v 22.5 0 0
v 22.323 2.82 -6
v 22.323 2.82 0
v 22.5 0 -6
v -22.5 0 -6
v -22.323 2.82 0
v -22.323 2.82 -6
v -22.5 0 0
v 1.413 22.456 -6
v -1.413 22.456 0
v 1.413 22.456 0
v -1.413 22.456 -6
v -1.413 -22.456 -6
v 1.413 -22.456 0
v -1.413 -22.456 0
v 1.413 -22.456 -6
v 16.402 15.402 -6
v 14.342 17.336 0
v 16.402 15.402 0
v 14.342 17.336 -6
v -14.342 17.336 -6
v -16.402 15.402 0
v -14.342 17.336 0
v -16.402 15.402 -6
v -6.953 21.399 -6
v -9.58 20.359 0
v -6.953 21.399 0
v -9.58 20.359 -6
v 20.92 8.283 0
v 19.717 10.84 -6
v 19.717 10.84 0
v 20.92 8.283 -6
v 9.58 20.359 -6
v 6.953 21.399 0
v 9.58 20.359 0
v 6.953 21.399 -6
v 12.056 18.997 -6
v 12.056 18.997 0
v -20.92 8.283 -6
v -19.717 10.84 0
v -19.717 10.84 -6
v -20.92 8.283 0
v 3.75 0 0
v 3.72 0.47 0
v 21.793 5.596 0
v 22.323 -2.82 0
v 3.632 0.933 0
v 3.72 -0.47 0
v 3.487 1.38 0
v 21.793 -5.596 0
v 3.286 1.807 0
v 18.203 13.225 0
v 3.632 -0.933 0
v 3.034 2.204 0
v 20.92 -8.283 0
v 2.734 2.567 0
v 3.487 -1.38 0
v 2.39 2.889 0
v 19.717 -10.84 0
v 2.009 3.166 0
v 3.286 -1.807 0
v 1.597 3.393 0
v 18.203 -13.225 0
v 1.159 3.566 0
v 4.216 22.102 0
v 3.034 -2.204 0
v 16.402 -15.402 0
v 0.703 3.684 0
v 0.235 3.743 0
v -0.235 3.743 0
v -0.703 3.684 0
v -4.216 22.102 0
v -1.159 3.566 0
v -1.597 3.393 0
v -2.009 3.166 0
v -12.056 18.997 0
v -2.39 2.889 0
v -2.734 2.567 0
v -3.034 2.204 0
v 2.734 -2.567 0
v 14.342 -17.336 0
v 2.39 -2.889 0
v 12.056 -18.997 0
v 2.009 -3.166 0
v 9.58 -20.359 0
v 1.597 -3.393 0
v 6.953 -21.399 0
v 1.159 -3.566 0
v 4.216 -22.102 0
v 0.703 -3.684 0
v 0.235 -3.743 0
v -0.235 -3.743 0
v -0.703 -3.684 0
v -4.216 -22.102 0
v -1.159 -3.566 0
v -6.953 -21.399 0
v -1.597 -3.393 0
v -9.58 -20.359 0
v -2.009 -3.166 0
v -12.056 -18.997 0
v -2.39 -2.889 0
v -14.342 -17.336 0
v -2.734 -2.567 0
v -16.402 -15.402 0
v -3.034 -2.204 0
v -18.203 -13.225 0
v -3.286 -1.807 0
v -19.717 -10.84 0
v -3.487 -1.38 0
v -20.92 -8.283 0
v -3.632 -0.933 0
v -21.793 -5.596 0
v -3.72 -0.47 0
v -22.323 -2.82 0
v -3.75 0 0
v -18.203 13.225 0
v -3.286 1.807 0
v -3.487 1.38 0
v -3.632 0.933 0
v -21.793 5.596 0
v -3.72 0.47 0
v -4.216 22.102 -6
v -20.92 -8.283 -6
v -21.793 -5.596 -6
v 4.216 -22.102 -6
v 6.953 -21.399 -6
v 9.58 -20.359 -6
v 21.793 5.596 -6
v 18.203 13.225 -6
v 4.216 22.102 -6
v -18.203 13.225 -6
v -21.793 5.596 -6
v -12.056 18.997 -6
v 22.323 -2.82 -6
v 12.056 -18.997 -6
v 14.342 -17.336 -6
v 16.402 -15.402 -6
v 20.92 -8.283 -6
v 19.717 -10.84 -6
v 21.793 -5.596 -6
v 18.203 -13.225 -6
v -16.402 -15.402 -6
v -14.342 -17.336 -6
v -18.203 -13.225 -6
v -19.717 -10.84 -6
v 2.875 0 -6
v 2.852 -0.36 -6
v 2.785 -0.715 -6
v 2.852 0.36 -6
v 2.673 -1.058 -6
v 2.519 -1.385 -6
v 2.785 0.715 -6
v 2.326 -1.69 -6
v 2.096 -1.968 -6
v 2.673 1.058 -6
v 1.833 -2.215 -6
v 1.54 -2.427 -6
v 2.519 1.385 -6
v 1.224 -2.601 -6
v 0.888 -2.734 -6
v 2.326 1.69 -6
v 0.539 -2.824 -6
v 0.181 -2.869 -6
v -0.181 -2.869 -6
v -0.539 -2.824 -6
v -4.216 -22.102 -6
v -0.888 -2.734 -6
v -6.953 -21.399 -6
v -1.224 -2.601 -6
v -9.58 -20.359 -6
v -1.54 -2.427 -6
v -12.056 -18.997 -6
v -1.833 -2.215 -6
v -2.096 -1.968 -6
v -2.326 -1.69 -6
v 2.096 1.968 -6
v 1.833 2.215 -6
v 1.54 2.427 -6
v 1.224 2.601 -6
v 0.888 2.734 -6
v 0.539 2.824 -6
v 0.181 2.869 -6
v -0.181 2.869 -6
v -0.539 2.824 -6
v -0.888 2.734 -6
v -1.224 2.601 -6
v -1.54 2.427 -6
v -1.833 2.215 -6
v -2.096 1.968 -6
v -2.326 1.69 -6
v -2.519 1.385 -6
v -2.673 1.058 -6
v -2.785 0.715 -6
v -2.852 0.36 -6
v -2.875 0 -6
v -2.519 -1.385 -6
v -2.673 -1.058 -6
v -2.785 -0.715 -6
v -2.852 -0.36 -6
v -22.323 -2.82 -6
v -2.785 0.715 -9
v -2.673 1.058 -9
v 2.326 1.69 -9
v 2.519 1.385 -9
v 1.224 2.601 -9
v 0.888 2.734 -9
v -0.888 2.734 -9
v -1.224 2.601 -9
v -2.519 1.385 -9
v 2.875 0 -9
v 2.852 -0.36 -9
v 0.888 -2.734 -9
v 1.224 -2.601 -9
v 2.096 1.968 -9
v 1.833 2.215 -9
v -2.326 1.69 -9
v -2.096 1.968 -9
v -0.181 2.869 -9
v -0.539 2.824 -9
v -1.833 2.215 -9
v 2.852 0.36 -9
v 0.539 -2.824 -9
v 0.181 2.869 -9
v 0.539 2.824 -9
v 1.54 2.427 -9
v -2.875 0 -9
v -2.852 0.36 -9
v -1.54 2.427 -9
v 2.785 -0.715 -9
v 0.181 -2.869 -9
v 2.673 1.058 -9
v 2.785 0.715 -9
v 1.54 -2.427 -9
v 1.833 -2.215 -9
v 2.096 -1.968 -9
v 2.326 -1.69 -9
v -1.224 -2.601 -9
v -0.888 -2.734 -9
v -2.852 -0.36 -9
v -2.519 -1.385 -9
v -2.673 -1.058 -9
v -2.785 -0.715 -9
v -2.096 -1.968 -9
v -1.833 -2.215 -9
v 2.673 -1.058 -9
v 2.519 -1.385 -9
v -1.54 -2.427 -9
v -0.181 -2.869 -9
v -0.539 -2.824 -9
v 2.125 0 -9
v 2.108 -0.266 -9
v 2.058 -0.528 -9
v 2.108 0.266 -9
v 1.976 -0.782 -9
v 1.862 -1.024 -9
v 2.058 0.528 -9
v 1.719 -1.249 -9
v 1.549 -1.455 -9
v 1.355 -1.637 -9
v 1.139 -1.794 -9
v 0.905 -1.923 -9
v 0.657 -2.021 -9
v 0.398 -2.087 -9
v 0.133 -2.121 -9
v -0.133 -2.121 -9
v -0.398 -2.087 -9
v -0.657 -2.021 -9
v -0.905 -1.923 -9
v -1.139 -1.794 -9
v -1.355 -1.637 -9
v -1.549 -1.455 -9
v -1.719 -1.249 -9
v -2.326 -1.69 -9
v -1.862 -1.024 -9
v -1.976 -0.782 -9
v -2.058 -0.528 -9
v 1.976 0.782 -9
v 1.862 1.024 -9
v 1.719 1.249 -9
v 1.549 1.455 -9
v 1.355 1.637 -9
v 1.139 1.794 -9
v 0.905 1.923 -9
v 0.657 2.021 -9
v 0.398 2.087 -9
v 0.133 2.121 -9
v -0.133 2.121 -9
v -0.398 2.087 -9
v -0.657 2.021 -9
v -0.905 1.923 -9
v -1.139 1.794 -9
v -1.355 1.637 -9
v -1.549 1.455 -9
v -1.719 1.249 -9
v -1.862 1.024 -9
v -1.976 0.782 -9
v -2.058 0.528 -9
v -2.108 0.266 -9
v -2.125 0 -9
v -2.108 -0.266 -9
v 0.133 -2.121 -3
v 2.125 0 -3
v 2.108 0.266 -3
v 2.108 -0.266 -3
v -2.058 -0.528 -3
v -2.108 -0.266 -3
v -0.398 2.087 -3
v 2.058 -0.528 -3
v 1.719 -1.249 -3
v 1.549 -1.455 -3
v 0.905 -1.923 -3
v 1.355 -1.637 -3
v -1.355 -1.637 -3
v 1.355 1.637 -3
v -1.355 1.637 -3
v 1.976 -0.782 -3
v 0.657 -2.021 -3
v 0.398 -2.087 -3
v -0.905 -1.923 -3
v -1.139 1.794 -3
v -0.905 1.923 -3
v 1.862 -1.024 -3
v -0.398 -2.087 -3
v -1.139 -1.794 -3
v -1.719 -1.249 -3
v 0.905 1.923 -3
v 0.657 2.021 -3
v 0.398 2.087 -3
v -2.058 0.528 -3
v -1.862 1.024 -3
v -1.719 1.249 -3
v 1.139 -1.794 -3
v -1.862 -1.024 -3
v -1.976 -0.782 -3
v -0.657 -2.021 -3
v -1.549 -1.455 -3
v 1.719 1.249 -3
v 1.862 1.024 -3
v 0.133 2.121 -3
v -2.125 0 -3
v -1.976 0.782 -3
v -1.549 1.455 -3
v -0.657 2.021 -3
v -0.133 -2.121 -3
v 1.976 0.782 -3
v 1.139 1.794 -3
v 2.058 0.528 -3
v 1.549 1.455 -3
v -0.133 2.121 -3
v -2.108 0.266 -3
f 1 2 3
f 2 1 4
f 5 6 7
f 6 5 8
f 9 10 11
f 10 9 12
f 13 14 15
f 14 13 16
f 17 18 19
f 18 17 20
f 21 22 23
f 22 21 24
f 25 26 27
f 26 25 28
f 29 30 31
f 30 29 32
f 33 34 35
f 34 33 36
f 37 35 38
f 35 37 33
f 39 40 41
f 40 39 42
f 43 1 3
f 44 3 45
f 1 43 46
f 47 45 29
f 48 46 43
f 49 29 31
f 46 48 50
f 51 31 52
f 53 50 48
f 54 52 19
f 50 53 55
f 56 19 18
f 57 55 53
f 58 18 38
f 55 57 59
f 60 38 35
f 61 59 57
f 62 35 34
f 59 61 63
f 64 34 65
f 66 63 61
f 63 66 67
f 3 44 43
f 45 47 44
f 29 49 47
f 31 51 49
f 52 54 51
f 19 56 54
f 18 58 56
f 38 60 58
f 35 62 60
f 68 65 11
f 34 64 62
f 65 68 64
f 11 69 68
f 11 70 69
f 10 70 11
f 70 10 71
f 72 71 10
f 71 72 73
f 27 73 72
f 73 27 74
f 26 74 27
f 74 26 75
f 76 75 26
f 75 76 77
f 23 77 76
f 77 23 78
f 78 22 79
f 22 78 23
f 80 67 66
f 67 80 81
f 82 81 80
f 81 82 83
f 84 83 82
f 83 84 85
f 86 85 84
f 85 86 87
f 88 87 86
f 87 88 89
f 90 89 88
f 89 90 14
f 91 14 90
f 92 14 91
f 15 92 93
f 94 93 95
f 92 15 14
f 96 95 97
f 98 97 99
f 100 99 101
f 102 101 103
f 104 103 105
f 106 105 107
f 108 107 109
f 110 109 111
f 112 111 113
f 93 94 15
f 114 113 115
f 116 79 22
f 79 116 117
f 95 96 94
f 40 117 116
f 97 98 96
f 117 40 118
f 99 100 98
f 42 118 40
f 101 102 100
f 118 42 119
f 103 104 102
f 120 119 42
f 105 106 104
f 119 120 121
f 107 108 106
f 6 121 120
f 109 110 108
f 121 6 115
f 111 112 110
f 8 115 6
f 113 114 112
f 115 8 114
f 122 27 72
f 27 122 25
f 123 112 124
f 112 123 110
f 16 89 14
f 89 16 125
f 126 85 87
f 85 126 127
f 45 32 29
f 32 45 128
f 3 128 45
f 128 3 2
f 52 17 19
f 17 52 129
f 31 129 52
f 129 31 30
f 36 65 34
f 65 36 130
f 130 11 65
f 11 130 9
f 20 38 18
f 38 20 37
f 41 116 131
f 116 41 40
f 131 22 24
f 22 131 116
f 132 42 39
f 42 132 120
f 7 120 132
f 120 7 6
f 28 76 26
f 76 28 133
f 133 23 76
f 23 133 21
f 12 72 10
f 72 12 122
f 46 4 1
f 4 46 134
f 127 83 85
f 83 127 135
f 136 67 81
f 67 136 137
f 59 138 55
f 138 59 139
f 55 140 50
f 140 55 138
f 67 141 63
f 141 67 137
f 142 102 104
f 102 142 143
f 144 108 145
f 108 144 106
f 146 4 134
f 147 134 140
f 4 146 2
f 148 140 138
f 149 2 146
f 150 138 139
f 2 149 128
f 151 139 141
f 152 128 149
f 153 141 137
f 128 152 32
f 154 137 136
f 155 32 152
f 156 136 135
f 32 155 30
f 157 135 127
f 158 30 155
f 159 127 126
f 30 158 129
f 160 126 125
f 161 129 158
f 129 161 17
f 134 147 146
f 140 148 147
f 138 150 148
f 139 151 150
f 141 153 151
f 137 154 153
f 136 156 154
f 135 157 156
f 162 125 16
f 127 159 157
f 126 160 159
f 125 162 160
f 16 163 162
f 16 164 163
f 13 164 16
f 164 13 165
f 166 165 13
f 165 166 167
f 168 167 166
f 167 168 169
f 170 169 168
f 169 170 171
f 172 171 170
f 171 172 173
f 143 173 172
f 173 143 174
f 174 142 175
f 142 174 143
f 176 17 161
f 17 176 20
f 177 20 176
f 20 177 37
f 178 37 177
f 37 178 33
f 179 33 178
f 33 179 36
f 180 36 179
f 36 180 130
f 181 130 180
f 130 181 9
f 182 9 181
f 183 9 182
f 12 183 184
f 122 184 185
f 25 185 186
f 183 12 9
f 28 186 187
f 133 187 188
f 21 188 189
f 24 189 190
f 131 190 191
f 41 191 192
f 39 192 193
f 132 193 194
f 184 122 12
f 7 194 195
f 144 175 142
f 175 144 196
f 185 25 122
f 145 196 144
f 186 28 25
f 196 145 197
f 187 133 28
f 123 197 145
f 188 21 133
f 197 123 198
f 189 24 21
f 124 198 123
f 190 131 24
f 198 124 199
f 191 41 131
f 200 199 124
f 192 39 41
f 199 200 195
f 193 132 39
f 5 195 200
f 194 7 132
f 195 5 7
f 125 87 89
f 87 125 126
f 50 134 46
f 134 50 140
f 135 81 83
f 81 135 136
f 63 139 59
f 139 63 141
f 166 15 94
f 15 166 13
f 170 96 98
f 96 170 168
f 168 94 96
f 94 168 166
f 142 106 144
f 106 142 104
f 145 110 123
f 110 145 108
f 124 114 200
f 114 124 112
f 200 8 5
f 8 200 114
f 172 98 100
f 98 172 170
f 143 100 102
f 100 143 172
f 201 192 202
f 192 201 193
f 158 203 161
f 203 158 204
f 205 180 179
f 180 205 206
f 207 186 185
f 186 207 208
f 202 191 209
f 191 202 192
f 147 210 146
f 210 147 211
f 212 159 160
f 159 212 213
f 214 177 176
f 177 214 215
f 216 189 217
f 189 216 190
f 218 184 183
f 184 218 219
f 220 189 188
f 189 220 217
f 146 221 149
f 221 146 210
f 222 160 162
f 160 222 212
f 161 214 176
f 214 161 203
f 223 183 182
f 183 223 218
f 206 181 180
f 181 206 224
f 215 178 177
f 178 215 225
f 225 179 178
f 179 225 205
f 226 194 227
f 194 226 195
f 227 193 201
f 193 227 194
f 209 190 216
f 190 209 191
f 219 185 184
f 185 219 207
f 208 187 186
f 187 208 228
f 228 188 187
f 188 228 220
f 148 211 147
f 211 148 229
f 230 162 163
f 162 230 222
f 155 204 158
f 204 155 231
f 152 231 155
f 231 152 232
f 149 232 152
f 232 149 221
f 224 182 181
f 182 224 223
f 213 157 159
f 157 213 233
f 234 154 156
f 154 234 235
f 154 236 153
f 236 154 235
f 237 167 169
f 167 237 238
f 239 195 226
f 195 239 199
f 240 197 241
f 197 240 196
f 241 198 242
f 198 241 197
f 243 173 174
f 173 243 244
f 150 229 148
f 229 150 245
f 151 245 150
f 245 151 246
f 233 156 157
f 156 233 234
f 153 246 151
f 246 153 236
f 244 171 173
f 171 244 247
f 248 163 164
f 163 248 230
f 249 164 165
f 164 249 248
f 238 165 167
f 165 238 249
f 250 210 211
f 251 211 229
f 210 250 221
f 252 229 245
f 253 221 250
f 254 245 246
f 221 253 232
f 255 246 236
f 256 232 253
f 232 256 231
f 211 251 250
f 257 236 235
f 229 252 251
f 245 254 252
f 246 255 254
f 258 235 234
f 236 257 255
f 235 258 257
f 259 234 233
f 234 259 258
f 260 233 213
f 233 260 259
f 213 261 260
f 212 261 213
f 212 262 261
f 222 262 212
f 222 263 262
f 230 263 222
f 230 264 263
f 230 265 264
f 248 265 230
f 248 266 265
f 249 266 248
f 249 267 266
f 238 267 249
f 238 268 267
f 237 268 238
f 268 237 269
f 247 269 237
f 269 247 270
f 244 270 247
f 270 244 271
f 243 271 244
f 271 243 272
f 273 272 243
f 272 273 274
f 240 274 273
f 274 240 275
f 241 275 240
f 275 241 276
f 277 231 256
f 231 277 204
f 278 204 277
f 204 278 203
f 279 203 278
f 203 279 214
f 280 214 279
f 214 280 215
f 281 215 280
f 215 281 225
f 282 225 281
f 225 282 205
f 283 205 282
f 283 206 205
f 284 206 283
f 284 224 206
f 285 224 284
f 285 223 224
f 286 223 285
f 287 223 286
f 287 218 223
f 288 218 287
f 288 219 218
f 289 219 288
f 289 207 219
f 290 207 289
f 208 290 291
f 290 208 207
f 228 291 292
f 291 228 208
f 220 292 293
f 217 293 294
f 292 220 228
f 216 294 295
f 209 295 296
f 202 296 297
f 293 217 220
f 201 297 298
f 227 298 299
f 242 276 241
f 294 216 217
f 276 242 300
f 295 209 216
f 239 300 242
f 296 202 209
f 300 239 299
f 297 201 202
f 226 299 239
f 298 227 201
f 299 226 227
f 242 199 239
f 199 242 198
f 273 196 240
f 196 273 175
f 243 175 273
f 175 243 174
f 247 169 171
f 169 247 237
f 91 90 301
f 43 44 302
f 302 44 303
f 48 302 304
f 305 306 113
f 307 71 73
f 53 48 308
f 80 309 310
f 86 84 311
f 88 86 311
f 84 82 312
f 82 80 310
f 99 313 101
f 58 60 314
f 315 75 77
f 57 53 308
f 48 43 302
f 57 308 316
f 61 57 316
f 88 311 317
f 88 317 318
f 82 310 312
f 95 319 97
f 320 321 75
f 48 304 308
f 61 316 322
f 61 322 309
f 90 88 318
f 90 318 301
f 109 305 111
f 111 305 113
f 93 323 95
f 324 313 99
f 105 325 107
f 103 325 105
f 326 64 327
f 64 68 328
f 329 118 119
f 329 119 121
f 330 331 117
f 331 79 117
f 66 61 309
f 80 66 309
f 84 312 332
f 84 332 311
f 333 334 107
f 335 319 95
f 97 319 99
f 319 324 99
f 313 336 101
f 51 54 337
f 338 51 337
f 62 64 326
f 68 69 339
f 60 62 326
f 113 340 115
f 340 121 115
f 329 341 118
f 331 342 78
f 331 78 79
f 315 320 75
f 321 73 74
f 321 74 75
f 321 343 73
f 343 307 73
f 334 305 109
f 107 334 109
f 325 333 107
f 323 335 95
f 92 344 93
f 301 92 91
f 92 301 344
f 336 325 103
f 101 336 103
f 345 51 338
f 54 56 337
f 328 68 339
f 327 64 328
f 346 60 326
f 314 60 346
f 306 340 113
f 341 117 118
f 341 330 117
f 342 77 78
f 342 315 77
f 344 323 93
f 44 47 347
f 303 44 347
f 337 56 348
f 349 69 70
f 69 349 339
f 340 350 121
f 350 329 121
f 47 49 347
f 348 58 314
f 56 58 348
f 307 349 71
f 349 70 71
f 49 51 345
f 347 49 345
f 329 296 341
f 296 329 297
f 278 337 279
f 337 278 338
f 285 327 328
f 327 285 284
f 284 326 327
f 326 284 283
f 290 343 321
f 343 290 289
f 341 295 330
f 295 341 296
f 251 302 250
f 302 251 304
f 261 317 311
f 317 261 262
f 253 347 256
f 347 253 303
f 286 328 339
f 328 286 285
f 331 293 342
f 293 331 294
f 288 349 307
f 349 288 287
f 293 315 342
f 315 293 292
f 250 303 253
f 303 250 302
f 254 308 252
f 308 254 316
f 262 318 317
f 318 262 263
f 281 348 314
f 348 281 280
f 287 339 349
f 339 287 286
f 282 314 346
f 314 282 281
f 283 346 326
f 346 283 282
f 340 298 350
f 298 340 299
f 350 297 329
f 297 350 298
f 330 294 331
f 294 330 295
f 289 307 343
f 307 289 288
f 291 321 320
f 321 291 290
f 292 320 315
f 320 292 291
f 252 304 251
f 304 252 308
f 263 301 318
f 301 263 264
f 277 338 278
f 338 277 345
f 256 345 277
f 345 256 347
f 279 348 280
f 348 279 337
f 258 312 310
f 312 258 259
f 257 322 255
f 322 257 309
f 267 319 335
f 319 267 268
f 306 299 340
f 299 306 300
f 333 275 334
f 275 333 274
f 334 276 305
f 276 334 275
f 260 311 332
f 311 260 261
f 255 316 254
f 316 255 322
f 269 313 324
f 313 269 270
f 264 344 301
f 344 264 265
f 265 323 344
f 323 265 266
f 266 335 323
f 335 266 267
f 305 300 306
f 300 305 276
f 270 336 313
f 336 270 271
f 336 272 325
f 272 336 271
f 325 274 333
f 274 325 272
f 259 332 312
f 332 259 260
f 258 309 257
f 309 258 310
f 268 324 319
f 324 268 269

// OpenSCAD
$fn = 50;


difference() {
	union() {
		translate(v = [0, 0, -6.0000000000]) {
			cylinder(h = 6, r = 22.5000000000);
		}
		#translate(v = [0, 0, -9.0000000000]) {
			cylinder(h = 9, r = 2.8750000000);
		}
	}
	union() {
		translate(v = [0, 0, 0]) {
			rotate(a = [0, 0, 0]) {
				difference() {
					union() {
						translate(v = [0, 0, -9.0000000000]) {
							cylinder(h = 9, r = 2.0000000000);
						}
						translate(v = [0, 0, -3]) {
							cylinder(h = 3, r1 = 2.1250000000, r2 = 3.7500000000);
						}
						translate(v = [0, 0, -9.0000000000]) {
							cylinder(h = 9, r = 2.1250000000);
						}
						translate(v = [0, 0, -9.0000000000]) {
							cylinder(h = 9, r = 2.0000000000);
						}
					}
					union();
				}
			}
		}
	}
}
